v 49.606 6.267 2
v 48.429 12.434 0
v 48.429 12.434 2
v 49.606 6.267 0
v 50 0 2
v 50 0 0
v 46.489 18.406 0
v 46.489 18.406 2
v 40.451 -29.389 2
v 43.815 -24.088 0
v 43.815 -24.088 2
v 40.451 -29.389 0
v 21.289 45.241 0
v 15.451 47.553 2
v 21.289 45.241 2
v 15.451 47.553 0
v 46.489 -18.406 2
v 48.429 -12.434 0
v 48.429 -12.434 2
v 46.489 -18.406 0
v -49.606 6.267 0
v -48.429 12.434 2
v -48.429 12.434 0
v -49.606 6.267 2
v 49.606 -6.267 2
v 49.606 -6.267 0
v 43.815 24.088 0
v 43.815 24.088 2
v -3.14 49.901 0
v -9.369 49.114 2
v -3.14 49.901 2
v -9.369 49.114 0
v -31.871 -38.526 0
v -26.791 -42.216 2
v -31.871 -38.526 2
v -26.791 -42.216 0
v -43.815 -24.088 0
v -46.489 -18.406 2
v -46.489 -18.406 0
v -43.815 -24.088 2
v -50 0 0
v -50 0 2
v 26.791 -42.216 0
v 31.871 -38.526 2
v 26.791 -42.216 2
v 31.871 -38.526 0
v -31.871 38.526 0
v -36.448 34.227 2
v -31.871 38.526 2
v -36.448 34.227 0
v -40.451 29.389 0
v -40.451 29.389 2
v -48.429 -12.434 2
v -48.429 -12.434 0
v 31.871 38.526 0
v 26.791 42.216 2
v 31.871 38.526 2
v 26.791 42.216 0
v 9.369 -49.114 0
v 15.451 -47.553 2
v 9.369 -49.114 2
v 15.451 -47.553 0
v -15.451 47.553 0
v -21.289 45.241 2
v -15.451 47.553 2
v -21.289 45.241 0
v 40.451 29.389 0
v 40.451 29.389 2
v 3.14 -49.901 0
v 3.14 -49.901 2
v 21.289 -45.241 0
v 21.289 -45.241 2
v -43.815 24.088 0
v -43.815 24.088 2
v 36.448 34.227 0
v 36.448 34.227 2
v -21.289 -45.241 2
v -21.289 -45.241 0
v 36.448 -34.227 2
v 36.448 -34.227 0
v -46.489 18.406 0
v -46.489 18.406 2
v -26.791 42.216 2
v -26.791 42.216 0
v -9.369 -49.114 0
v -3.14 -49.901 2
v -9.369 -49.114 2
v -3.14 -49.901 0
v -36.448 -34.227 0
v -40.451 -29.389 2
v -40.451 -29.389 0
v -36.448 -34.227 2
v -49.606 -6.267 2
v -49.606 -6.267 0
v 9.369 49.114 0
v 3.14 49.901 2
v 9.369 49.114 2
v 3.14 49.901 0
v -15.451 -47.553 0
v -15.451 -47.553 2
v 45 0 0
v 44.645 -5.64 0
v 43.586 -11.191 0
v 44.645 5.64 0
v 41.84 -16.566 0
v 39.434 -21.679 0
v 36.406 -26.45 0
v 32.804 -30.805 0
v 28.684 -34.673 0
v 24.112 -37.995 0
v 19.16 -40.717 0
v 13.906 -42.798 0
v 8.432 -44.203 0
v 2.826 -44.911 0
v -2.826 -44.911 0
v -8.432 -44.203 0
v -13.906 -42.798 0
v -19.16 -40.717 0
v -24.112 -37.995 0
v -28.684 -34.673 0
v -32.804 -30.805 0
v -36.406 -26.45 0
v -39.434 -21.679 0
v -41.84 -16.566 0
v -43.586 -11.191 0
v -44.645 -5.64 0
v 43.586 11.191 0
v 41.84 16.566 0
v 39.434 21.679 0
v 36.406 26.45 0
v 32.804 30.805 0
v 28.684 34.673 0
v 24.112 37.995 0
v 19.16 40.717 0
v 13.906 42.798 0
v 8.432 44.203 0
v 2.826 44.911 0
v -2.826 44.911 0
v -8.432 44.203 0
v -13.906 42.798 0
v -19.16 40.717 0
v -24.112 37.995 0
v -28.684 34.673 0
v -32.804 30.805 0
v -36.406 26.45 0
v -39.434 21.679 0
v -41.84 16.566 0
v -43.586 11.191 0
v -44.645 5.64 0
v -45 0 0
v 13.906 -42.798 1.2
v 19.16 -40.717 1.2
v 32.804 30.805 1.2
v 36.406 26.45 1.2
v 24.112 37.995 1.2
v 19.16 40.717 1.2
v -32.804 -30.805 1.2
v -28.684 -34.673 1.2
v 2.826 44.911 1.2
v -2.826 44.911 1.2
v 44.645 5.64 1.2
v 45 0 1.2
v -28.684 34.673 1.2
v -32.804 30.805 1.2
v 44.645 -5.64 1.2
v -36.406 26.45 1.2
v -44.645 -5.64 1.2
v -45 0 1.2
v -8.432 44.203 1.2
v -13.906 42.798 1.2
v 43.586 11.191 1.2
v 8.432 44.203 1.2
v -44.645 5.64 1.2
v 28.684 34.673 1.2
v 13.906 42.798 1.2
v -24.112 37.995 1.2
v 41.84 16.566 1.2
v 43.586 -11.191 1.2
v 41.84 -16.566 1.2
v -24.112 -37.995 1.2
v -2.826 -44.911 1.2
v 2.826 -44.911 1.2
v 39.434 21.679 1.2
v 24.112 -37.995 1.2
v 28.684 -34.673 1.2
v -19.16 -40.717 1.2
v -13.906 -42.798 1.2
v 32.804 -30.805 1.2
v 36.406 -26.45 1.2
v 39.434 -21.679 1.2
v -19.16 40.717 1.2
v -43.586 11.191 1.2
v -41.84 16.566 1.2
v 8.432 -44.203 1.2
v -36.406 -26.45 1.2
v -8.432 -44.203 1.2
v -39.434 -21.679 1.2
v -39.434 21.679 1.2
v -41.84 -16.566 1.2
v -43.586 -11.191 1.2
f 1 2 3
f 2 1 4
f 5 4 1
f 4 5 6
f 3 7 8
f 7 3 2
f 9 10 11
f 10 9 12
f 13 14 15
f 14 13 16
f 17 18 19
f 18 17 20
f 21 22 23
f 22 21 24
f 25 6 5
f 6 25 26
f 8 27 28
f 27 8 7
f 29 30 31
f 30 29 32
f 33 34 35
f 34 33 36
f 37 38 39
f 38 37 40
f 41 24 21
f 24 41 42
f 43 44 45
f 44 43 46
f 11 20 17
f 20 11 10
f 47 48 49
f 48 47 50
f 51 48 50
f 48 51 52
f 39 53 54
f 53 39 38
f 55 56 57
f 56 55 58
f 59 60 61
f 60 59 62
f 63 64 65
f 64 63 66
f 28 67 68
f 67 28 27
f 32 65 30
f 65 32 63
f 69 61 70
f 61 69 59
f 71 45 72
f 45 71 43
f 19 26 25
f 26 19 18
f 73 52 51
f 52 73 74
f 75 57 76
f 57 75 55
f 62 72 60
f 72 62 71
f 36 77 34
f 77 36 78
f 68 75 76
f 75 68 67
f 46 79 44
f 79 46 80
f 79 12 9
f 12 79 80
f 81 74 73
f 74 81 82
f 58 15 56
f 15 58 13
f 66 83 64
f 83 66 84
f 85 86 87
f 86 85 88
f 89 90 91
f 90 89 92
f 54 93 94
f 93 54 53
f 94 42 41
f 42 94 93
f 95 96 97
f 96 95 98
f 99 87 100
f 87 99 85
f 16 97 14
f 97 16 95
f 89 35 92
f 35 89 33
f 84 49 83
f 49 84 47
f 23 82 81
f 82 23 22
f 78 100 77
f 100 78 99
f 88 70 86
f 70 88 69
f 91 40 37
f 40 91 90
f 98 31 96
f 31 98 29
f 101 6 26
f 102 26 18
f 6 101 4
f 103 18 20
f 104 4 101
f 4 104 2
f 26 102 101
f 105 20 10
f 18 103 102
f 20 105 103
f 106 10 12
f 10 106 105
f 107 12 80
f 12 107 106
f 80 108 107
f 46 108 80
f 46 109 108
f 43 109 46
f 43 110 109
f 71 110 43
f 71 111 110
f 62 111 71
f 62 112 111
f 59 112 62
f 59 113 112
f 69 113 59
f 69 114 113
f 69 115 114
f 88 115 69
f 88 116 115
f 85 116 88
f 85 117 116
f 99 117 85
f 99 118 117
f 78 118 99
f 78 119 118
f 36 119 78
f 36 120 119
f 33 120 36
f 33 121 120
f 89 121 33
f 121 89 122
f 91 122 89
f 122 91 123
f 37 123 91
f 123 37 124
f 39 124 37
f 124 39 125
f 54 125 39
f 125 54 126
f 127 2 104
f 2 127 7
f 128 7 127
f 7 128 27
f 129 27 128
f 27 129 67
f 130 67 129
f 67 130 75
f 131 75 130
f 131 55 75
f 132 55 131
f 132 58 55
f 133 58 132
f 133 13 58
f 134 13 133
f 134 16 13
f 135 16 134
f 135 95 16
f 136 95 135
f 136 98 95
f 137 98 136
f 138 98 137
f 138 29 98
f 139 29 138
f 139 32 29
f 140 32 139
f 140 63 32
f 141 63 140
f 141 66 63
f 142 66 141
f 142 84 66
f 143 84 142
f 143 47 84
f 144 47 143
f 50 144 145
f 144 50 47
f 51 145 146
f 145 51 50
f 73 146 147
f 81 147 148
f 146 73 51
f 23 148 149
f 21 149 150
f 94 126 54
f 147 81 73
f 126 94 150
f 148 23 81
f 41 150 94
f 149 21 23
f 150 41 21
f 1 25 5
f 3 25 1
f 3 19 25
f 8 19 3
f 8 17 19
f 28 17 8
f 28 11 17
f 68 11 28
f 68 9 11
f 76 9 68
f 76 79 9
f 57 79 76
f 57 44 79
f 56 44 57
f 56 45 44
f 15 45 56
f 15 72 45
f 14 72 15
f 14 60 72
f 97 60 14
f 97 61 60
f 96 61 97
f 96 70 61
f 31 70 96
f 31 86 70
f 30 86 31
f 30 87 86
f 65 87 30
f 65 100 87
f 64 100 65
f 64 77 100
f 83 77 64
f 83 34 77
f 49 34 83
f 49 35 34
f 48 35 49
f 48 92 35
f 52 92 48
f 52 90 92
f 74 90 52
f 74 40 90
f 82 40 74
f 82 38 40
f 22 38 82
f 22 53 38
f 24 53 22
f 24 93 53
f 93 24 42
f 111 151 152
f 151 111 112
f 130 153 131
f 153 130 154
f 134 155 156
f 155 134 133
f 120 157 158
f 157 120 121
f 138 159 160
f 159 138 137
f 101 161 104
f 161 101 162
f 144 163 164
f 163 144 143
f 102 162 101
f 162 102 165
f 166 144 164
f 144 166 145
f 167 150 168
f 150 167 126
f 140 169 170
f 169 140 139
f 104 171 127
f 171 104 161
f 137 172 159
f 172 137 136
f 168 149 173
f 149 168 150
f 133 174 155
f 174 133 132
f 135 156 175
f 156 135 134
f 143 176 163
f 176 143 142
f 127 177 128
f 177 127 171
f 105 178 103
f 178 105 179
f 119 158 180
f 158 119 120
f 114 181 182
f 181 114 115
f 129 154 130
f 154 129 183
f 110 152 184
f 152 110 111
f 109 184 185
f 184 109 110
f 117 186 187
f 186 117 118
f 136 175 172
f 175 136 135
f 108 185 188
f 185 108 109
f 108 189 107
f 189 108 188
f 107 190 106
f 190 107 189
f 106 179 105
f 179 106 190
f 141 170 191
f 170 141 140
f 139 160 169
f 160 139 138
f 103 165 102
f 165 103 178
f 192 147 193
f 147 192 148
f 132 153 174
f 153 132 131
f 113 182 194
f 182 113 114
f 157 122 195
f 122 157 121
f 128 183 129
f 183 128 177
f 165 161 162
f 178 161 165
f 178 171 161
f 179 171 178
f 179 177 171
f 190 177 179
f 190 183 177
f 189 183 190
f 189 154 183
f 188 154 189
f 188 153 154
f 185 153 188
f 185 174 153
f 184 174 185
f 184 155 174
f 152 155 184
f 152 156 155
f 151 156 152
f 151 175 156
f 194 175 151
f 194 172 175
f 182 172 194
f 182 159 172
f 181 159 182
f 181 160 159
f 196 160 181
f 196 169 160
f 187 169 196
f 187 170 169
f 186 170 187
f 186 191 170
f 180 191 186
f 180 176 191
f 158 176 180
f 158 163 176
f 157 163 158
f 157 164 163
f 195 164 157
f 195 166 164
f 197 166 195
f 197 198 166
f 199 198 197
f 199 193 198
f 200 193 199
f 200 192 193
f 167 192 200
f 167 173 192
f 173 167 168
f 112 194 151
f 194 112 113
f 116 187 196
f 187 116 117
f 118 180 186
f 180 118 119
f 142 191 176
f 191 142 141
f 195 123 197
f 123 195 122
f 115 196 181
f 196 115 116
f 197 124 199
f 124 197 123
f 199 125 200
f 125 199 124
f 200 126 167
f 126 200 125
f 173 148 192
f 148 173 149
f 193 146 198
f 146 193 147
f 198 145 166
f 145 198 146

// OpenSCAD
// Mirror Symmetry parameters
radius = 50;
thickness = 2;
angle = 180;

// Main mirror
module mirror(radius, thickness) {
  difference() {
    cylinder(r = radius, h = thickness, $fn = 50);
    translate([0, 0, -1])
    cylinder(r = radius * 0.9, h = thickness * 1.1, $fn = 50);
  }
}

mirror(radius, thickness);
